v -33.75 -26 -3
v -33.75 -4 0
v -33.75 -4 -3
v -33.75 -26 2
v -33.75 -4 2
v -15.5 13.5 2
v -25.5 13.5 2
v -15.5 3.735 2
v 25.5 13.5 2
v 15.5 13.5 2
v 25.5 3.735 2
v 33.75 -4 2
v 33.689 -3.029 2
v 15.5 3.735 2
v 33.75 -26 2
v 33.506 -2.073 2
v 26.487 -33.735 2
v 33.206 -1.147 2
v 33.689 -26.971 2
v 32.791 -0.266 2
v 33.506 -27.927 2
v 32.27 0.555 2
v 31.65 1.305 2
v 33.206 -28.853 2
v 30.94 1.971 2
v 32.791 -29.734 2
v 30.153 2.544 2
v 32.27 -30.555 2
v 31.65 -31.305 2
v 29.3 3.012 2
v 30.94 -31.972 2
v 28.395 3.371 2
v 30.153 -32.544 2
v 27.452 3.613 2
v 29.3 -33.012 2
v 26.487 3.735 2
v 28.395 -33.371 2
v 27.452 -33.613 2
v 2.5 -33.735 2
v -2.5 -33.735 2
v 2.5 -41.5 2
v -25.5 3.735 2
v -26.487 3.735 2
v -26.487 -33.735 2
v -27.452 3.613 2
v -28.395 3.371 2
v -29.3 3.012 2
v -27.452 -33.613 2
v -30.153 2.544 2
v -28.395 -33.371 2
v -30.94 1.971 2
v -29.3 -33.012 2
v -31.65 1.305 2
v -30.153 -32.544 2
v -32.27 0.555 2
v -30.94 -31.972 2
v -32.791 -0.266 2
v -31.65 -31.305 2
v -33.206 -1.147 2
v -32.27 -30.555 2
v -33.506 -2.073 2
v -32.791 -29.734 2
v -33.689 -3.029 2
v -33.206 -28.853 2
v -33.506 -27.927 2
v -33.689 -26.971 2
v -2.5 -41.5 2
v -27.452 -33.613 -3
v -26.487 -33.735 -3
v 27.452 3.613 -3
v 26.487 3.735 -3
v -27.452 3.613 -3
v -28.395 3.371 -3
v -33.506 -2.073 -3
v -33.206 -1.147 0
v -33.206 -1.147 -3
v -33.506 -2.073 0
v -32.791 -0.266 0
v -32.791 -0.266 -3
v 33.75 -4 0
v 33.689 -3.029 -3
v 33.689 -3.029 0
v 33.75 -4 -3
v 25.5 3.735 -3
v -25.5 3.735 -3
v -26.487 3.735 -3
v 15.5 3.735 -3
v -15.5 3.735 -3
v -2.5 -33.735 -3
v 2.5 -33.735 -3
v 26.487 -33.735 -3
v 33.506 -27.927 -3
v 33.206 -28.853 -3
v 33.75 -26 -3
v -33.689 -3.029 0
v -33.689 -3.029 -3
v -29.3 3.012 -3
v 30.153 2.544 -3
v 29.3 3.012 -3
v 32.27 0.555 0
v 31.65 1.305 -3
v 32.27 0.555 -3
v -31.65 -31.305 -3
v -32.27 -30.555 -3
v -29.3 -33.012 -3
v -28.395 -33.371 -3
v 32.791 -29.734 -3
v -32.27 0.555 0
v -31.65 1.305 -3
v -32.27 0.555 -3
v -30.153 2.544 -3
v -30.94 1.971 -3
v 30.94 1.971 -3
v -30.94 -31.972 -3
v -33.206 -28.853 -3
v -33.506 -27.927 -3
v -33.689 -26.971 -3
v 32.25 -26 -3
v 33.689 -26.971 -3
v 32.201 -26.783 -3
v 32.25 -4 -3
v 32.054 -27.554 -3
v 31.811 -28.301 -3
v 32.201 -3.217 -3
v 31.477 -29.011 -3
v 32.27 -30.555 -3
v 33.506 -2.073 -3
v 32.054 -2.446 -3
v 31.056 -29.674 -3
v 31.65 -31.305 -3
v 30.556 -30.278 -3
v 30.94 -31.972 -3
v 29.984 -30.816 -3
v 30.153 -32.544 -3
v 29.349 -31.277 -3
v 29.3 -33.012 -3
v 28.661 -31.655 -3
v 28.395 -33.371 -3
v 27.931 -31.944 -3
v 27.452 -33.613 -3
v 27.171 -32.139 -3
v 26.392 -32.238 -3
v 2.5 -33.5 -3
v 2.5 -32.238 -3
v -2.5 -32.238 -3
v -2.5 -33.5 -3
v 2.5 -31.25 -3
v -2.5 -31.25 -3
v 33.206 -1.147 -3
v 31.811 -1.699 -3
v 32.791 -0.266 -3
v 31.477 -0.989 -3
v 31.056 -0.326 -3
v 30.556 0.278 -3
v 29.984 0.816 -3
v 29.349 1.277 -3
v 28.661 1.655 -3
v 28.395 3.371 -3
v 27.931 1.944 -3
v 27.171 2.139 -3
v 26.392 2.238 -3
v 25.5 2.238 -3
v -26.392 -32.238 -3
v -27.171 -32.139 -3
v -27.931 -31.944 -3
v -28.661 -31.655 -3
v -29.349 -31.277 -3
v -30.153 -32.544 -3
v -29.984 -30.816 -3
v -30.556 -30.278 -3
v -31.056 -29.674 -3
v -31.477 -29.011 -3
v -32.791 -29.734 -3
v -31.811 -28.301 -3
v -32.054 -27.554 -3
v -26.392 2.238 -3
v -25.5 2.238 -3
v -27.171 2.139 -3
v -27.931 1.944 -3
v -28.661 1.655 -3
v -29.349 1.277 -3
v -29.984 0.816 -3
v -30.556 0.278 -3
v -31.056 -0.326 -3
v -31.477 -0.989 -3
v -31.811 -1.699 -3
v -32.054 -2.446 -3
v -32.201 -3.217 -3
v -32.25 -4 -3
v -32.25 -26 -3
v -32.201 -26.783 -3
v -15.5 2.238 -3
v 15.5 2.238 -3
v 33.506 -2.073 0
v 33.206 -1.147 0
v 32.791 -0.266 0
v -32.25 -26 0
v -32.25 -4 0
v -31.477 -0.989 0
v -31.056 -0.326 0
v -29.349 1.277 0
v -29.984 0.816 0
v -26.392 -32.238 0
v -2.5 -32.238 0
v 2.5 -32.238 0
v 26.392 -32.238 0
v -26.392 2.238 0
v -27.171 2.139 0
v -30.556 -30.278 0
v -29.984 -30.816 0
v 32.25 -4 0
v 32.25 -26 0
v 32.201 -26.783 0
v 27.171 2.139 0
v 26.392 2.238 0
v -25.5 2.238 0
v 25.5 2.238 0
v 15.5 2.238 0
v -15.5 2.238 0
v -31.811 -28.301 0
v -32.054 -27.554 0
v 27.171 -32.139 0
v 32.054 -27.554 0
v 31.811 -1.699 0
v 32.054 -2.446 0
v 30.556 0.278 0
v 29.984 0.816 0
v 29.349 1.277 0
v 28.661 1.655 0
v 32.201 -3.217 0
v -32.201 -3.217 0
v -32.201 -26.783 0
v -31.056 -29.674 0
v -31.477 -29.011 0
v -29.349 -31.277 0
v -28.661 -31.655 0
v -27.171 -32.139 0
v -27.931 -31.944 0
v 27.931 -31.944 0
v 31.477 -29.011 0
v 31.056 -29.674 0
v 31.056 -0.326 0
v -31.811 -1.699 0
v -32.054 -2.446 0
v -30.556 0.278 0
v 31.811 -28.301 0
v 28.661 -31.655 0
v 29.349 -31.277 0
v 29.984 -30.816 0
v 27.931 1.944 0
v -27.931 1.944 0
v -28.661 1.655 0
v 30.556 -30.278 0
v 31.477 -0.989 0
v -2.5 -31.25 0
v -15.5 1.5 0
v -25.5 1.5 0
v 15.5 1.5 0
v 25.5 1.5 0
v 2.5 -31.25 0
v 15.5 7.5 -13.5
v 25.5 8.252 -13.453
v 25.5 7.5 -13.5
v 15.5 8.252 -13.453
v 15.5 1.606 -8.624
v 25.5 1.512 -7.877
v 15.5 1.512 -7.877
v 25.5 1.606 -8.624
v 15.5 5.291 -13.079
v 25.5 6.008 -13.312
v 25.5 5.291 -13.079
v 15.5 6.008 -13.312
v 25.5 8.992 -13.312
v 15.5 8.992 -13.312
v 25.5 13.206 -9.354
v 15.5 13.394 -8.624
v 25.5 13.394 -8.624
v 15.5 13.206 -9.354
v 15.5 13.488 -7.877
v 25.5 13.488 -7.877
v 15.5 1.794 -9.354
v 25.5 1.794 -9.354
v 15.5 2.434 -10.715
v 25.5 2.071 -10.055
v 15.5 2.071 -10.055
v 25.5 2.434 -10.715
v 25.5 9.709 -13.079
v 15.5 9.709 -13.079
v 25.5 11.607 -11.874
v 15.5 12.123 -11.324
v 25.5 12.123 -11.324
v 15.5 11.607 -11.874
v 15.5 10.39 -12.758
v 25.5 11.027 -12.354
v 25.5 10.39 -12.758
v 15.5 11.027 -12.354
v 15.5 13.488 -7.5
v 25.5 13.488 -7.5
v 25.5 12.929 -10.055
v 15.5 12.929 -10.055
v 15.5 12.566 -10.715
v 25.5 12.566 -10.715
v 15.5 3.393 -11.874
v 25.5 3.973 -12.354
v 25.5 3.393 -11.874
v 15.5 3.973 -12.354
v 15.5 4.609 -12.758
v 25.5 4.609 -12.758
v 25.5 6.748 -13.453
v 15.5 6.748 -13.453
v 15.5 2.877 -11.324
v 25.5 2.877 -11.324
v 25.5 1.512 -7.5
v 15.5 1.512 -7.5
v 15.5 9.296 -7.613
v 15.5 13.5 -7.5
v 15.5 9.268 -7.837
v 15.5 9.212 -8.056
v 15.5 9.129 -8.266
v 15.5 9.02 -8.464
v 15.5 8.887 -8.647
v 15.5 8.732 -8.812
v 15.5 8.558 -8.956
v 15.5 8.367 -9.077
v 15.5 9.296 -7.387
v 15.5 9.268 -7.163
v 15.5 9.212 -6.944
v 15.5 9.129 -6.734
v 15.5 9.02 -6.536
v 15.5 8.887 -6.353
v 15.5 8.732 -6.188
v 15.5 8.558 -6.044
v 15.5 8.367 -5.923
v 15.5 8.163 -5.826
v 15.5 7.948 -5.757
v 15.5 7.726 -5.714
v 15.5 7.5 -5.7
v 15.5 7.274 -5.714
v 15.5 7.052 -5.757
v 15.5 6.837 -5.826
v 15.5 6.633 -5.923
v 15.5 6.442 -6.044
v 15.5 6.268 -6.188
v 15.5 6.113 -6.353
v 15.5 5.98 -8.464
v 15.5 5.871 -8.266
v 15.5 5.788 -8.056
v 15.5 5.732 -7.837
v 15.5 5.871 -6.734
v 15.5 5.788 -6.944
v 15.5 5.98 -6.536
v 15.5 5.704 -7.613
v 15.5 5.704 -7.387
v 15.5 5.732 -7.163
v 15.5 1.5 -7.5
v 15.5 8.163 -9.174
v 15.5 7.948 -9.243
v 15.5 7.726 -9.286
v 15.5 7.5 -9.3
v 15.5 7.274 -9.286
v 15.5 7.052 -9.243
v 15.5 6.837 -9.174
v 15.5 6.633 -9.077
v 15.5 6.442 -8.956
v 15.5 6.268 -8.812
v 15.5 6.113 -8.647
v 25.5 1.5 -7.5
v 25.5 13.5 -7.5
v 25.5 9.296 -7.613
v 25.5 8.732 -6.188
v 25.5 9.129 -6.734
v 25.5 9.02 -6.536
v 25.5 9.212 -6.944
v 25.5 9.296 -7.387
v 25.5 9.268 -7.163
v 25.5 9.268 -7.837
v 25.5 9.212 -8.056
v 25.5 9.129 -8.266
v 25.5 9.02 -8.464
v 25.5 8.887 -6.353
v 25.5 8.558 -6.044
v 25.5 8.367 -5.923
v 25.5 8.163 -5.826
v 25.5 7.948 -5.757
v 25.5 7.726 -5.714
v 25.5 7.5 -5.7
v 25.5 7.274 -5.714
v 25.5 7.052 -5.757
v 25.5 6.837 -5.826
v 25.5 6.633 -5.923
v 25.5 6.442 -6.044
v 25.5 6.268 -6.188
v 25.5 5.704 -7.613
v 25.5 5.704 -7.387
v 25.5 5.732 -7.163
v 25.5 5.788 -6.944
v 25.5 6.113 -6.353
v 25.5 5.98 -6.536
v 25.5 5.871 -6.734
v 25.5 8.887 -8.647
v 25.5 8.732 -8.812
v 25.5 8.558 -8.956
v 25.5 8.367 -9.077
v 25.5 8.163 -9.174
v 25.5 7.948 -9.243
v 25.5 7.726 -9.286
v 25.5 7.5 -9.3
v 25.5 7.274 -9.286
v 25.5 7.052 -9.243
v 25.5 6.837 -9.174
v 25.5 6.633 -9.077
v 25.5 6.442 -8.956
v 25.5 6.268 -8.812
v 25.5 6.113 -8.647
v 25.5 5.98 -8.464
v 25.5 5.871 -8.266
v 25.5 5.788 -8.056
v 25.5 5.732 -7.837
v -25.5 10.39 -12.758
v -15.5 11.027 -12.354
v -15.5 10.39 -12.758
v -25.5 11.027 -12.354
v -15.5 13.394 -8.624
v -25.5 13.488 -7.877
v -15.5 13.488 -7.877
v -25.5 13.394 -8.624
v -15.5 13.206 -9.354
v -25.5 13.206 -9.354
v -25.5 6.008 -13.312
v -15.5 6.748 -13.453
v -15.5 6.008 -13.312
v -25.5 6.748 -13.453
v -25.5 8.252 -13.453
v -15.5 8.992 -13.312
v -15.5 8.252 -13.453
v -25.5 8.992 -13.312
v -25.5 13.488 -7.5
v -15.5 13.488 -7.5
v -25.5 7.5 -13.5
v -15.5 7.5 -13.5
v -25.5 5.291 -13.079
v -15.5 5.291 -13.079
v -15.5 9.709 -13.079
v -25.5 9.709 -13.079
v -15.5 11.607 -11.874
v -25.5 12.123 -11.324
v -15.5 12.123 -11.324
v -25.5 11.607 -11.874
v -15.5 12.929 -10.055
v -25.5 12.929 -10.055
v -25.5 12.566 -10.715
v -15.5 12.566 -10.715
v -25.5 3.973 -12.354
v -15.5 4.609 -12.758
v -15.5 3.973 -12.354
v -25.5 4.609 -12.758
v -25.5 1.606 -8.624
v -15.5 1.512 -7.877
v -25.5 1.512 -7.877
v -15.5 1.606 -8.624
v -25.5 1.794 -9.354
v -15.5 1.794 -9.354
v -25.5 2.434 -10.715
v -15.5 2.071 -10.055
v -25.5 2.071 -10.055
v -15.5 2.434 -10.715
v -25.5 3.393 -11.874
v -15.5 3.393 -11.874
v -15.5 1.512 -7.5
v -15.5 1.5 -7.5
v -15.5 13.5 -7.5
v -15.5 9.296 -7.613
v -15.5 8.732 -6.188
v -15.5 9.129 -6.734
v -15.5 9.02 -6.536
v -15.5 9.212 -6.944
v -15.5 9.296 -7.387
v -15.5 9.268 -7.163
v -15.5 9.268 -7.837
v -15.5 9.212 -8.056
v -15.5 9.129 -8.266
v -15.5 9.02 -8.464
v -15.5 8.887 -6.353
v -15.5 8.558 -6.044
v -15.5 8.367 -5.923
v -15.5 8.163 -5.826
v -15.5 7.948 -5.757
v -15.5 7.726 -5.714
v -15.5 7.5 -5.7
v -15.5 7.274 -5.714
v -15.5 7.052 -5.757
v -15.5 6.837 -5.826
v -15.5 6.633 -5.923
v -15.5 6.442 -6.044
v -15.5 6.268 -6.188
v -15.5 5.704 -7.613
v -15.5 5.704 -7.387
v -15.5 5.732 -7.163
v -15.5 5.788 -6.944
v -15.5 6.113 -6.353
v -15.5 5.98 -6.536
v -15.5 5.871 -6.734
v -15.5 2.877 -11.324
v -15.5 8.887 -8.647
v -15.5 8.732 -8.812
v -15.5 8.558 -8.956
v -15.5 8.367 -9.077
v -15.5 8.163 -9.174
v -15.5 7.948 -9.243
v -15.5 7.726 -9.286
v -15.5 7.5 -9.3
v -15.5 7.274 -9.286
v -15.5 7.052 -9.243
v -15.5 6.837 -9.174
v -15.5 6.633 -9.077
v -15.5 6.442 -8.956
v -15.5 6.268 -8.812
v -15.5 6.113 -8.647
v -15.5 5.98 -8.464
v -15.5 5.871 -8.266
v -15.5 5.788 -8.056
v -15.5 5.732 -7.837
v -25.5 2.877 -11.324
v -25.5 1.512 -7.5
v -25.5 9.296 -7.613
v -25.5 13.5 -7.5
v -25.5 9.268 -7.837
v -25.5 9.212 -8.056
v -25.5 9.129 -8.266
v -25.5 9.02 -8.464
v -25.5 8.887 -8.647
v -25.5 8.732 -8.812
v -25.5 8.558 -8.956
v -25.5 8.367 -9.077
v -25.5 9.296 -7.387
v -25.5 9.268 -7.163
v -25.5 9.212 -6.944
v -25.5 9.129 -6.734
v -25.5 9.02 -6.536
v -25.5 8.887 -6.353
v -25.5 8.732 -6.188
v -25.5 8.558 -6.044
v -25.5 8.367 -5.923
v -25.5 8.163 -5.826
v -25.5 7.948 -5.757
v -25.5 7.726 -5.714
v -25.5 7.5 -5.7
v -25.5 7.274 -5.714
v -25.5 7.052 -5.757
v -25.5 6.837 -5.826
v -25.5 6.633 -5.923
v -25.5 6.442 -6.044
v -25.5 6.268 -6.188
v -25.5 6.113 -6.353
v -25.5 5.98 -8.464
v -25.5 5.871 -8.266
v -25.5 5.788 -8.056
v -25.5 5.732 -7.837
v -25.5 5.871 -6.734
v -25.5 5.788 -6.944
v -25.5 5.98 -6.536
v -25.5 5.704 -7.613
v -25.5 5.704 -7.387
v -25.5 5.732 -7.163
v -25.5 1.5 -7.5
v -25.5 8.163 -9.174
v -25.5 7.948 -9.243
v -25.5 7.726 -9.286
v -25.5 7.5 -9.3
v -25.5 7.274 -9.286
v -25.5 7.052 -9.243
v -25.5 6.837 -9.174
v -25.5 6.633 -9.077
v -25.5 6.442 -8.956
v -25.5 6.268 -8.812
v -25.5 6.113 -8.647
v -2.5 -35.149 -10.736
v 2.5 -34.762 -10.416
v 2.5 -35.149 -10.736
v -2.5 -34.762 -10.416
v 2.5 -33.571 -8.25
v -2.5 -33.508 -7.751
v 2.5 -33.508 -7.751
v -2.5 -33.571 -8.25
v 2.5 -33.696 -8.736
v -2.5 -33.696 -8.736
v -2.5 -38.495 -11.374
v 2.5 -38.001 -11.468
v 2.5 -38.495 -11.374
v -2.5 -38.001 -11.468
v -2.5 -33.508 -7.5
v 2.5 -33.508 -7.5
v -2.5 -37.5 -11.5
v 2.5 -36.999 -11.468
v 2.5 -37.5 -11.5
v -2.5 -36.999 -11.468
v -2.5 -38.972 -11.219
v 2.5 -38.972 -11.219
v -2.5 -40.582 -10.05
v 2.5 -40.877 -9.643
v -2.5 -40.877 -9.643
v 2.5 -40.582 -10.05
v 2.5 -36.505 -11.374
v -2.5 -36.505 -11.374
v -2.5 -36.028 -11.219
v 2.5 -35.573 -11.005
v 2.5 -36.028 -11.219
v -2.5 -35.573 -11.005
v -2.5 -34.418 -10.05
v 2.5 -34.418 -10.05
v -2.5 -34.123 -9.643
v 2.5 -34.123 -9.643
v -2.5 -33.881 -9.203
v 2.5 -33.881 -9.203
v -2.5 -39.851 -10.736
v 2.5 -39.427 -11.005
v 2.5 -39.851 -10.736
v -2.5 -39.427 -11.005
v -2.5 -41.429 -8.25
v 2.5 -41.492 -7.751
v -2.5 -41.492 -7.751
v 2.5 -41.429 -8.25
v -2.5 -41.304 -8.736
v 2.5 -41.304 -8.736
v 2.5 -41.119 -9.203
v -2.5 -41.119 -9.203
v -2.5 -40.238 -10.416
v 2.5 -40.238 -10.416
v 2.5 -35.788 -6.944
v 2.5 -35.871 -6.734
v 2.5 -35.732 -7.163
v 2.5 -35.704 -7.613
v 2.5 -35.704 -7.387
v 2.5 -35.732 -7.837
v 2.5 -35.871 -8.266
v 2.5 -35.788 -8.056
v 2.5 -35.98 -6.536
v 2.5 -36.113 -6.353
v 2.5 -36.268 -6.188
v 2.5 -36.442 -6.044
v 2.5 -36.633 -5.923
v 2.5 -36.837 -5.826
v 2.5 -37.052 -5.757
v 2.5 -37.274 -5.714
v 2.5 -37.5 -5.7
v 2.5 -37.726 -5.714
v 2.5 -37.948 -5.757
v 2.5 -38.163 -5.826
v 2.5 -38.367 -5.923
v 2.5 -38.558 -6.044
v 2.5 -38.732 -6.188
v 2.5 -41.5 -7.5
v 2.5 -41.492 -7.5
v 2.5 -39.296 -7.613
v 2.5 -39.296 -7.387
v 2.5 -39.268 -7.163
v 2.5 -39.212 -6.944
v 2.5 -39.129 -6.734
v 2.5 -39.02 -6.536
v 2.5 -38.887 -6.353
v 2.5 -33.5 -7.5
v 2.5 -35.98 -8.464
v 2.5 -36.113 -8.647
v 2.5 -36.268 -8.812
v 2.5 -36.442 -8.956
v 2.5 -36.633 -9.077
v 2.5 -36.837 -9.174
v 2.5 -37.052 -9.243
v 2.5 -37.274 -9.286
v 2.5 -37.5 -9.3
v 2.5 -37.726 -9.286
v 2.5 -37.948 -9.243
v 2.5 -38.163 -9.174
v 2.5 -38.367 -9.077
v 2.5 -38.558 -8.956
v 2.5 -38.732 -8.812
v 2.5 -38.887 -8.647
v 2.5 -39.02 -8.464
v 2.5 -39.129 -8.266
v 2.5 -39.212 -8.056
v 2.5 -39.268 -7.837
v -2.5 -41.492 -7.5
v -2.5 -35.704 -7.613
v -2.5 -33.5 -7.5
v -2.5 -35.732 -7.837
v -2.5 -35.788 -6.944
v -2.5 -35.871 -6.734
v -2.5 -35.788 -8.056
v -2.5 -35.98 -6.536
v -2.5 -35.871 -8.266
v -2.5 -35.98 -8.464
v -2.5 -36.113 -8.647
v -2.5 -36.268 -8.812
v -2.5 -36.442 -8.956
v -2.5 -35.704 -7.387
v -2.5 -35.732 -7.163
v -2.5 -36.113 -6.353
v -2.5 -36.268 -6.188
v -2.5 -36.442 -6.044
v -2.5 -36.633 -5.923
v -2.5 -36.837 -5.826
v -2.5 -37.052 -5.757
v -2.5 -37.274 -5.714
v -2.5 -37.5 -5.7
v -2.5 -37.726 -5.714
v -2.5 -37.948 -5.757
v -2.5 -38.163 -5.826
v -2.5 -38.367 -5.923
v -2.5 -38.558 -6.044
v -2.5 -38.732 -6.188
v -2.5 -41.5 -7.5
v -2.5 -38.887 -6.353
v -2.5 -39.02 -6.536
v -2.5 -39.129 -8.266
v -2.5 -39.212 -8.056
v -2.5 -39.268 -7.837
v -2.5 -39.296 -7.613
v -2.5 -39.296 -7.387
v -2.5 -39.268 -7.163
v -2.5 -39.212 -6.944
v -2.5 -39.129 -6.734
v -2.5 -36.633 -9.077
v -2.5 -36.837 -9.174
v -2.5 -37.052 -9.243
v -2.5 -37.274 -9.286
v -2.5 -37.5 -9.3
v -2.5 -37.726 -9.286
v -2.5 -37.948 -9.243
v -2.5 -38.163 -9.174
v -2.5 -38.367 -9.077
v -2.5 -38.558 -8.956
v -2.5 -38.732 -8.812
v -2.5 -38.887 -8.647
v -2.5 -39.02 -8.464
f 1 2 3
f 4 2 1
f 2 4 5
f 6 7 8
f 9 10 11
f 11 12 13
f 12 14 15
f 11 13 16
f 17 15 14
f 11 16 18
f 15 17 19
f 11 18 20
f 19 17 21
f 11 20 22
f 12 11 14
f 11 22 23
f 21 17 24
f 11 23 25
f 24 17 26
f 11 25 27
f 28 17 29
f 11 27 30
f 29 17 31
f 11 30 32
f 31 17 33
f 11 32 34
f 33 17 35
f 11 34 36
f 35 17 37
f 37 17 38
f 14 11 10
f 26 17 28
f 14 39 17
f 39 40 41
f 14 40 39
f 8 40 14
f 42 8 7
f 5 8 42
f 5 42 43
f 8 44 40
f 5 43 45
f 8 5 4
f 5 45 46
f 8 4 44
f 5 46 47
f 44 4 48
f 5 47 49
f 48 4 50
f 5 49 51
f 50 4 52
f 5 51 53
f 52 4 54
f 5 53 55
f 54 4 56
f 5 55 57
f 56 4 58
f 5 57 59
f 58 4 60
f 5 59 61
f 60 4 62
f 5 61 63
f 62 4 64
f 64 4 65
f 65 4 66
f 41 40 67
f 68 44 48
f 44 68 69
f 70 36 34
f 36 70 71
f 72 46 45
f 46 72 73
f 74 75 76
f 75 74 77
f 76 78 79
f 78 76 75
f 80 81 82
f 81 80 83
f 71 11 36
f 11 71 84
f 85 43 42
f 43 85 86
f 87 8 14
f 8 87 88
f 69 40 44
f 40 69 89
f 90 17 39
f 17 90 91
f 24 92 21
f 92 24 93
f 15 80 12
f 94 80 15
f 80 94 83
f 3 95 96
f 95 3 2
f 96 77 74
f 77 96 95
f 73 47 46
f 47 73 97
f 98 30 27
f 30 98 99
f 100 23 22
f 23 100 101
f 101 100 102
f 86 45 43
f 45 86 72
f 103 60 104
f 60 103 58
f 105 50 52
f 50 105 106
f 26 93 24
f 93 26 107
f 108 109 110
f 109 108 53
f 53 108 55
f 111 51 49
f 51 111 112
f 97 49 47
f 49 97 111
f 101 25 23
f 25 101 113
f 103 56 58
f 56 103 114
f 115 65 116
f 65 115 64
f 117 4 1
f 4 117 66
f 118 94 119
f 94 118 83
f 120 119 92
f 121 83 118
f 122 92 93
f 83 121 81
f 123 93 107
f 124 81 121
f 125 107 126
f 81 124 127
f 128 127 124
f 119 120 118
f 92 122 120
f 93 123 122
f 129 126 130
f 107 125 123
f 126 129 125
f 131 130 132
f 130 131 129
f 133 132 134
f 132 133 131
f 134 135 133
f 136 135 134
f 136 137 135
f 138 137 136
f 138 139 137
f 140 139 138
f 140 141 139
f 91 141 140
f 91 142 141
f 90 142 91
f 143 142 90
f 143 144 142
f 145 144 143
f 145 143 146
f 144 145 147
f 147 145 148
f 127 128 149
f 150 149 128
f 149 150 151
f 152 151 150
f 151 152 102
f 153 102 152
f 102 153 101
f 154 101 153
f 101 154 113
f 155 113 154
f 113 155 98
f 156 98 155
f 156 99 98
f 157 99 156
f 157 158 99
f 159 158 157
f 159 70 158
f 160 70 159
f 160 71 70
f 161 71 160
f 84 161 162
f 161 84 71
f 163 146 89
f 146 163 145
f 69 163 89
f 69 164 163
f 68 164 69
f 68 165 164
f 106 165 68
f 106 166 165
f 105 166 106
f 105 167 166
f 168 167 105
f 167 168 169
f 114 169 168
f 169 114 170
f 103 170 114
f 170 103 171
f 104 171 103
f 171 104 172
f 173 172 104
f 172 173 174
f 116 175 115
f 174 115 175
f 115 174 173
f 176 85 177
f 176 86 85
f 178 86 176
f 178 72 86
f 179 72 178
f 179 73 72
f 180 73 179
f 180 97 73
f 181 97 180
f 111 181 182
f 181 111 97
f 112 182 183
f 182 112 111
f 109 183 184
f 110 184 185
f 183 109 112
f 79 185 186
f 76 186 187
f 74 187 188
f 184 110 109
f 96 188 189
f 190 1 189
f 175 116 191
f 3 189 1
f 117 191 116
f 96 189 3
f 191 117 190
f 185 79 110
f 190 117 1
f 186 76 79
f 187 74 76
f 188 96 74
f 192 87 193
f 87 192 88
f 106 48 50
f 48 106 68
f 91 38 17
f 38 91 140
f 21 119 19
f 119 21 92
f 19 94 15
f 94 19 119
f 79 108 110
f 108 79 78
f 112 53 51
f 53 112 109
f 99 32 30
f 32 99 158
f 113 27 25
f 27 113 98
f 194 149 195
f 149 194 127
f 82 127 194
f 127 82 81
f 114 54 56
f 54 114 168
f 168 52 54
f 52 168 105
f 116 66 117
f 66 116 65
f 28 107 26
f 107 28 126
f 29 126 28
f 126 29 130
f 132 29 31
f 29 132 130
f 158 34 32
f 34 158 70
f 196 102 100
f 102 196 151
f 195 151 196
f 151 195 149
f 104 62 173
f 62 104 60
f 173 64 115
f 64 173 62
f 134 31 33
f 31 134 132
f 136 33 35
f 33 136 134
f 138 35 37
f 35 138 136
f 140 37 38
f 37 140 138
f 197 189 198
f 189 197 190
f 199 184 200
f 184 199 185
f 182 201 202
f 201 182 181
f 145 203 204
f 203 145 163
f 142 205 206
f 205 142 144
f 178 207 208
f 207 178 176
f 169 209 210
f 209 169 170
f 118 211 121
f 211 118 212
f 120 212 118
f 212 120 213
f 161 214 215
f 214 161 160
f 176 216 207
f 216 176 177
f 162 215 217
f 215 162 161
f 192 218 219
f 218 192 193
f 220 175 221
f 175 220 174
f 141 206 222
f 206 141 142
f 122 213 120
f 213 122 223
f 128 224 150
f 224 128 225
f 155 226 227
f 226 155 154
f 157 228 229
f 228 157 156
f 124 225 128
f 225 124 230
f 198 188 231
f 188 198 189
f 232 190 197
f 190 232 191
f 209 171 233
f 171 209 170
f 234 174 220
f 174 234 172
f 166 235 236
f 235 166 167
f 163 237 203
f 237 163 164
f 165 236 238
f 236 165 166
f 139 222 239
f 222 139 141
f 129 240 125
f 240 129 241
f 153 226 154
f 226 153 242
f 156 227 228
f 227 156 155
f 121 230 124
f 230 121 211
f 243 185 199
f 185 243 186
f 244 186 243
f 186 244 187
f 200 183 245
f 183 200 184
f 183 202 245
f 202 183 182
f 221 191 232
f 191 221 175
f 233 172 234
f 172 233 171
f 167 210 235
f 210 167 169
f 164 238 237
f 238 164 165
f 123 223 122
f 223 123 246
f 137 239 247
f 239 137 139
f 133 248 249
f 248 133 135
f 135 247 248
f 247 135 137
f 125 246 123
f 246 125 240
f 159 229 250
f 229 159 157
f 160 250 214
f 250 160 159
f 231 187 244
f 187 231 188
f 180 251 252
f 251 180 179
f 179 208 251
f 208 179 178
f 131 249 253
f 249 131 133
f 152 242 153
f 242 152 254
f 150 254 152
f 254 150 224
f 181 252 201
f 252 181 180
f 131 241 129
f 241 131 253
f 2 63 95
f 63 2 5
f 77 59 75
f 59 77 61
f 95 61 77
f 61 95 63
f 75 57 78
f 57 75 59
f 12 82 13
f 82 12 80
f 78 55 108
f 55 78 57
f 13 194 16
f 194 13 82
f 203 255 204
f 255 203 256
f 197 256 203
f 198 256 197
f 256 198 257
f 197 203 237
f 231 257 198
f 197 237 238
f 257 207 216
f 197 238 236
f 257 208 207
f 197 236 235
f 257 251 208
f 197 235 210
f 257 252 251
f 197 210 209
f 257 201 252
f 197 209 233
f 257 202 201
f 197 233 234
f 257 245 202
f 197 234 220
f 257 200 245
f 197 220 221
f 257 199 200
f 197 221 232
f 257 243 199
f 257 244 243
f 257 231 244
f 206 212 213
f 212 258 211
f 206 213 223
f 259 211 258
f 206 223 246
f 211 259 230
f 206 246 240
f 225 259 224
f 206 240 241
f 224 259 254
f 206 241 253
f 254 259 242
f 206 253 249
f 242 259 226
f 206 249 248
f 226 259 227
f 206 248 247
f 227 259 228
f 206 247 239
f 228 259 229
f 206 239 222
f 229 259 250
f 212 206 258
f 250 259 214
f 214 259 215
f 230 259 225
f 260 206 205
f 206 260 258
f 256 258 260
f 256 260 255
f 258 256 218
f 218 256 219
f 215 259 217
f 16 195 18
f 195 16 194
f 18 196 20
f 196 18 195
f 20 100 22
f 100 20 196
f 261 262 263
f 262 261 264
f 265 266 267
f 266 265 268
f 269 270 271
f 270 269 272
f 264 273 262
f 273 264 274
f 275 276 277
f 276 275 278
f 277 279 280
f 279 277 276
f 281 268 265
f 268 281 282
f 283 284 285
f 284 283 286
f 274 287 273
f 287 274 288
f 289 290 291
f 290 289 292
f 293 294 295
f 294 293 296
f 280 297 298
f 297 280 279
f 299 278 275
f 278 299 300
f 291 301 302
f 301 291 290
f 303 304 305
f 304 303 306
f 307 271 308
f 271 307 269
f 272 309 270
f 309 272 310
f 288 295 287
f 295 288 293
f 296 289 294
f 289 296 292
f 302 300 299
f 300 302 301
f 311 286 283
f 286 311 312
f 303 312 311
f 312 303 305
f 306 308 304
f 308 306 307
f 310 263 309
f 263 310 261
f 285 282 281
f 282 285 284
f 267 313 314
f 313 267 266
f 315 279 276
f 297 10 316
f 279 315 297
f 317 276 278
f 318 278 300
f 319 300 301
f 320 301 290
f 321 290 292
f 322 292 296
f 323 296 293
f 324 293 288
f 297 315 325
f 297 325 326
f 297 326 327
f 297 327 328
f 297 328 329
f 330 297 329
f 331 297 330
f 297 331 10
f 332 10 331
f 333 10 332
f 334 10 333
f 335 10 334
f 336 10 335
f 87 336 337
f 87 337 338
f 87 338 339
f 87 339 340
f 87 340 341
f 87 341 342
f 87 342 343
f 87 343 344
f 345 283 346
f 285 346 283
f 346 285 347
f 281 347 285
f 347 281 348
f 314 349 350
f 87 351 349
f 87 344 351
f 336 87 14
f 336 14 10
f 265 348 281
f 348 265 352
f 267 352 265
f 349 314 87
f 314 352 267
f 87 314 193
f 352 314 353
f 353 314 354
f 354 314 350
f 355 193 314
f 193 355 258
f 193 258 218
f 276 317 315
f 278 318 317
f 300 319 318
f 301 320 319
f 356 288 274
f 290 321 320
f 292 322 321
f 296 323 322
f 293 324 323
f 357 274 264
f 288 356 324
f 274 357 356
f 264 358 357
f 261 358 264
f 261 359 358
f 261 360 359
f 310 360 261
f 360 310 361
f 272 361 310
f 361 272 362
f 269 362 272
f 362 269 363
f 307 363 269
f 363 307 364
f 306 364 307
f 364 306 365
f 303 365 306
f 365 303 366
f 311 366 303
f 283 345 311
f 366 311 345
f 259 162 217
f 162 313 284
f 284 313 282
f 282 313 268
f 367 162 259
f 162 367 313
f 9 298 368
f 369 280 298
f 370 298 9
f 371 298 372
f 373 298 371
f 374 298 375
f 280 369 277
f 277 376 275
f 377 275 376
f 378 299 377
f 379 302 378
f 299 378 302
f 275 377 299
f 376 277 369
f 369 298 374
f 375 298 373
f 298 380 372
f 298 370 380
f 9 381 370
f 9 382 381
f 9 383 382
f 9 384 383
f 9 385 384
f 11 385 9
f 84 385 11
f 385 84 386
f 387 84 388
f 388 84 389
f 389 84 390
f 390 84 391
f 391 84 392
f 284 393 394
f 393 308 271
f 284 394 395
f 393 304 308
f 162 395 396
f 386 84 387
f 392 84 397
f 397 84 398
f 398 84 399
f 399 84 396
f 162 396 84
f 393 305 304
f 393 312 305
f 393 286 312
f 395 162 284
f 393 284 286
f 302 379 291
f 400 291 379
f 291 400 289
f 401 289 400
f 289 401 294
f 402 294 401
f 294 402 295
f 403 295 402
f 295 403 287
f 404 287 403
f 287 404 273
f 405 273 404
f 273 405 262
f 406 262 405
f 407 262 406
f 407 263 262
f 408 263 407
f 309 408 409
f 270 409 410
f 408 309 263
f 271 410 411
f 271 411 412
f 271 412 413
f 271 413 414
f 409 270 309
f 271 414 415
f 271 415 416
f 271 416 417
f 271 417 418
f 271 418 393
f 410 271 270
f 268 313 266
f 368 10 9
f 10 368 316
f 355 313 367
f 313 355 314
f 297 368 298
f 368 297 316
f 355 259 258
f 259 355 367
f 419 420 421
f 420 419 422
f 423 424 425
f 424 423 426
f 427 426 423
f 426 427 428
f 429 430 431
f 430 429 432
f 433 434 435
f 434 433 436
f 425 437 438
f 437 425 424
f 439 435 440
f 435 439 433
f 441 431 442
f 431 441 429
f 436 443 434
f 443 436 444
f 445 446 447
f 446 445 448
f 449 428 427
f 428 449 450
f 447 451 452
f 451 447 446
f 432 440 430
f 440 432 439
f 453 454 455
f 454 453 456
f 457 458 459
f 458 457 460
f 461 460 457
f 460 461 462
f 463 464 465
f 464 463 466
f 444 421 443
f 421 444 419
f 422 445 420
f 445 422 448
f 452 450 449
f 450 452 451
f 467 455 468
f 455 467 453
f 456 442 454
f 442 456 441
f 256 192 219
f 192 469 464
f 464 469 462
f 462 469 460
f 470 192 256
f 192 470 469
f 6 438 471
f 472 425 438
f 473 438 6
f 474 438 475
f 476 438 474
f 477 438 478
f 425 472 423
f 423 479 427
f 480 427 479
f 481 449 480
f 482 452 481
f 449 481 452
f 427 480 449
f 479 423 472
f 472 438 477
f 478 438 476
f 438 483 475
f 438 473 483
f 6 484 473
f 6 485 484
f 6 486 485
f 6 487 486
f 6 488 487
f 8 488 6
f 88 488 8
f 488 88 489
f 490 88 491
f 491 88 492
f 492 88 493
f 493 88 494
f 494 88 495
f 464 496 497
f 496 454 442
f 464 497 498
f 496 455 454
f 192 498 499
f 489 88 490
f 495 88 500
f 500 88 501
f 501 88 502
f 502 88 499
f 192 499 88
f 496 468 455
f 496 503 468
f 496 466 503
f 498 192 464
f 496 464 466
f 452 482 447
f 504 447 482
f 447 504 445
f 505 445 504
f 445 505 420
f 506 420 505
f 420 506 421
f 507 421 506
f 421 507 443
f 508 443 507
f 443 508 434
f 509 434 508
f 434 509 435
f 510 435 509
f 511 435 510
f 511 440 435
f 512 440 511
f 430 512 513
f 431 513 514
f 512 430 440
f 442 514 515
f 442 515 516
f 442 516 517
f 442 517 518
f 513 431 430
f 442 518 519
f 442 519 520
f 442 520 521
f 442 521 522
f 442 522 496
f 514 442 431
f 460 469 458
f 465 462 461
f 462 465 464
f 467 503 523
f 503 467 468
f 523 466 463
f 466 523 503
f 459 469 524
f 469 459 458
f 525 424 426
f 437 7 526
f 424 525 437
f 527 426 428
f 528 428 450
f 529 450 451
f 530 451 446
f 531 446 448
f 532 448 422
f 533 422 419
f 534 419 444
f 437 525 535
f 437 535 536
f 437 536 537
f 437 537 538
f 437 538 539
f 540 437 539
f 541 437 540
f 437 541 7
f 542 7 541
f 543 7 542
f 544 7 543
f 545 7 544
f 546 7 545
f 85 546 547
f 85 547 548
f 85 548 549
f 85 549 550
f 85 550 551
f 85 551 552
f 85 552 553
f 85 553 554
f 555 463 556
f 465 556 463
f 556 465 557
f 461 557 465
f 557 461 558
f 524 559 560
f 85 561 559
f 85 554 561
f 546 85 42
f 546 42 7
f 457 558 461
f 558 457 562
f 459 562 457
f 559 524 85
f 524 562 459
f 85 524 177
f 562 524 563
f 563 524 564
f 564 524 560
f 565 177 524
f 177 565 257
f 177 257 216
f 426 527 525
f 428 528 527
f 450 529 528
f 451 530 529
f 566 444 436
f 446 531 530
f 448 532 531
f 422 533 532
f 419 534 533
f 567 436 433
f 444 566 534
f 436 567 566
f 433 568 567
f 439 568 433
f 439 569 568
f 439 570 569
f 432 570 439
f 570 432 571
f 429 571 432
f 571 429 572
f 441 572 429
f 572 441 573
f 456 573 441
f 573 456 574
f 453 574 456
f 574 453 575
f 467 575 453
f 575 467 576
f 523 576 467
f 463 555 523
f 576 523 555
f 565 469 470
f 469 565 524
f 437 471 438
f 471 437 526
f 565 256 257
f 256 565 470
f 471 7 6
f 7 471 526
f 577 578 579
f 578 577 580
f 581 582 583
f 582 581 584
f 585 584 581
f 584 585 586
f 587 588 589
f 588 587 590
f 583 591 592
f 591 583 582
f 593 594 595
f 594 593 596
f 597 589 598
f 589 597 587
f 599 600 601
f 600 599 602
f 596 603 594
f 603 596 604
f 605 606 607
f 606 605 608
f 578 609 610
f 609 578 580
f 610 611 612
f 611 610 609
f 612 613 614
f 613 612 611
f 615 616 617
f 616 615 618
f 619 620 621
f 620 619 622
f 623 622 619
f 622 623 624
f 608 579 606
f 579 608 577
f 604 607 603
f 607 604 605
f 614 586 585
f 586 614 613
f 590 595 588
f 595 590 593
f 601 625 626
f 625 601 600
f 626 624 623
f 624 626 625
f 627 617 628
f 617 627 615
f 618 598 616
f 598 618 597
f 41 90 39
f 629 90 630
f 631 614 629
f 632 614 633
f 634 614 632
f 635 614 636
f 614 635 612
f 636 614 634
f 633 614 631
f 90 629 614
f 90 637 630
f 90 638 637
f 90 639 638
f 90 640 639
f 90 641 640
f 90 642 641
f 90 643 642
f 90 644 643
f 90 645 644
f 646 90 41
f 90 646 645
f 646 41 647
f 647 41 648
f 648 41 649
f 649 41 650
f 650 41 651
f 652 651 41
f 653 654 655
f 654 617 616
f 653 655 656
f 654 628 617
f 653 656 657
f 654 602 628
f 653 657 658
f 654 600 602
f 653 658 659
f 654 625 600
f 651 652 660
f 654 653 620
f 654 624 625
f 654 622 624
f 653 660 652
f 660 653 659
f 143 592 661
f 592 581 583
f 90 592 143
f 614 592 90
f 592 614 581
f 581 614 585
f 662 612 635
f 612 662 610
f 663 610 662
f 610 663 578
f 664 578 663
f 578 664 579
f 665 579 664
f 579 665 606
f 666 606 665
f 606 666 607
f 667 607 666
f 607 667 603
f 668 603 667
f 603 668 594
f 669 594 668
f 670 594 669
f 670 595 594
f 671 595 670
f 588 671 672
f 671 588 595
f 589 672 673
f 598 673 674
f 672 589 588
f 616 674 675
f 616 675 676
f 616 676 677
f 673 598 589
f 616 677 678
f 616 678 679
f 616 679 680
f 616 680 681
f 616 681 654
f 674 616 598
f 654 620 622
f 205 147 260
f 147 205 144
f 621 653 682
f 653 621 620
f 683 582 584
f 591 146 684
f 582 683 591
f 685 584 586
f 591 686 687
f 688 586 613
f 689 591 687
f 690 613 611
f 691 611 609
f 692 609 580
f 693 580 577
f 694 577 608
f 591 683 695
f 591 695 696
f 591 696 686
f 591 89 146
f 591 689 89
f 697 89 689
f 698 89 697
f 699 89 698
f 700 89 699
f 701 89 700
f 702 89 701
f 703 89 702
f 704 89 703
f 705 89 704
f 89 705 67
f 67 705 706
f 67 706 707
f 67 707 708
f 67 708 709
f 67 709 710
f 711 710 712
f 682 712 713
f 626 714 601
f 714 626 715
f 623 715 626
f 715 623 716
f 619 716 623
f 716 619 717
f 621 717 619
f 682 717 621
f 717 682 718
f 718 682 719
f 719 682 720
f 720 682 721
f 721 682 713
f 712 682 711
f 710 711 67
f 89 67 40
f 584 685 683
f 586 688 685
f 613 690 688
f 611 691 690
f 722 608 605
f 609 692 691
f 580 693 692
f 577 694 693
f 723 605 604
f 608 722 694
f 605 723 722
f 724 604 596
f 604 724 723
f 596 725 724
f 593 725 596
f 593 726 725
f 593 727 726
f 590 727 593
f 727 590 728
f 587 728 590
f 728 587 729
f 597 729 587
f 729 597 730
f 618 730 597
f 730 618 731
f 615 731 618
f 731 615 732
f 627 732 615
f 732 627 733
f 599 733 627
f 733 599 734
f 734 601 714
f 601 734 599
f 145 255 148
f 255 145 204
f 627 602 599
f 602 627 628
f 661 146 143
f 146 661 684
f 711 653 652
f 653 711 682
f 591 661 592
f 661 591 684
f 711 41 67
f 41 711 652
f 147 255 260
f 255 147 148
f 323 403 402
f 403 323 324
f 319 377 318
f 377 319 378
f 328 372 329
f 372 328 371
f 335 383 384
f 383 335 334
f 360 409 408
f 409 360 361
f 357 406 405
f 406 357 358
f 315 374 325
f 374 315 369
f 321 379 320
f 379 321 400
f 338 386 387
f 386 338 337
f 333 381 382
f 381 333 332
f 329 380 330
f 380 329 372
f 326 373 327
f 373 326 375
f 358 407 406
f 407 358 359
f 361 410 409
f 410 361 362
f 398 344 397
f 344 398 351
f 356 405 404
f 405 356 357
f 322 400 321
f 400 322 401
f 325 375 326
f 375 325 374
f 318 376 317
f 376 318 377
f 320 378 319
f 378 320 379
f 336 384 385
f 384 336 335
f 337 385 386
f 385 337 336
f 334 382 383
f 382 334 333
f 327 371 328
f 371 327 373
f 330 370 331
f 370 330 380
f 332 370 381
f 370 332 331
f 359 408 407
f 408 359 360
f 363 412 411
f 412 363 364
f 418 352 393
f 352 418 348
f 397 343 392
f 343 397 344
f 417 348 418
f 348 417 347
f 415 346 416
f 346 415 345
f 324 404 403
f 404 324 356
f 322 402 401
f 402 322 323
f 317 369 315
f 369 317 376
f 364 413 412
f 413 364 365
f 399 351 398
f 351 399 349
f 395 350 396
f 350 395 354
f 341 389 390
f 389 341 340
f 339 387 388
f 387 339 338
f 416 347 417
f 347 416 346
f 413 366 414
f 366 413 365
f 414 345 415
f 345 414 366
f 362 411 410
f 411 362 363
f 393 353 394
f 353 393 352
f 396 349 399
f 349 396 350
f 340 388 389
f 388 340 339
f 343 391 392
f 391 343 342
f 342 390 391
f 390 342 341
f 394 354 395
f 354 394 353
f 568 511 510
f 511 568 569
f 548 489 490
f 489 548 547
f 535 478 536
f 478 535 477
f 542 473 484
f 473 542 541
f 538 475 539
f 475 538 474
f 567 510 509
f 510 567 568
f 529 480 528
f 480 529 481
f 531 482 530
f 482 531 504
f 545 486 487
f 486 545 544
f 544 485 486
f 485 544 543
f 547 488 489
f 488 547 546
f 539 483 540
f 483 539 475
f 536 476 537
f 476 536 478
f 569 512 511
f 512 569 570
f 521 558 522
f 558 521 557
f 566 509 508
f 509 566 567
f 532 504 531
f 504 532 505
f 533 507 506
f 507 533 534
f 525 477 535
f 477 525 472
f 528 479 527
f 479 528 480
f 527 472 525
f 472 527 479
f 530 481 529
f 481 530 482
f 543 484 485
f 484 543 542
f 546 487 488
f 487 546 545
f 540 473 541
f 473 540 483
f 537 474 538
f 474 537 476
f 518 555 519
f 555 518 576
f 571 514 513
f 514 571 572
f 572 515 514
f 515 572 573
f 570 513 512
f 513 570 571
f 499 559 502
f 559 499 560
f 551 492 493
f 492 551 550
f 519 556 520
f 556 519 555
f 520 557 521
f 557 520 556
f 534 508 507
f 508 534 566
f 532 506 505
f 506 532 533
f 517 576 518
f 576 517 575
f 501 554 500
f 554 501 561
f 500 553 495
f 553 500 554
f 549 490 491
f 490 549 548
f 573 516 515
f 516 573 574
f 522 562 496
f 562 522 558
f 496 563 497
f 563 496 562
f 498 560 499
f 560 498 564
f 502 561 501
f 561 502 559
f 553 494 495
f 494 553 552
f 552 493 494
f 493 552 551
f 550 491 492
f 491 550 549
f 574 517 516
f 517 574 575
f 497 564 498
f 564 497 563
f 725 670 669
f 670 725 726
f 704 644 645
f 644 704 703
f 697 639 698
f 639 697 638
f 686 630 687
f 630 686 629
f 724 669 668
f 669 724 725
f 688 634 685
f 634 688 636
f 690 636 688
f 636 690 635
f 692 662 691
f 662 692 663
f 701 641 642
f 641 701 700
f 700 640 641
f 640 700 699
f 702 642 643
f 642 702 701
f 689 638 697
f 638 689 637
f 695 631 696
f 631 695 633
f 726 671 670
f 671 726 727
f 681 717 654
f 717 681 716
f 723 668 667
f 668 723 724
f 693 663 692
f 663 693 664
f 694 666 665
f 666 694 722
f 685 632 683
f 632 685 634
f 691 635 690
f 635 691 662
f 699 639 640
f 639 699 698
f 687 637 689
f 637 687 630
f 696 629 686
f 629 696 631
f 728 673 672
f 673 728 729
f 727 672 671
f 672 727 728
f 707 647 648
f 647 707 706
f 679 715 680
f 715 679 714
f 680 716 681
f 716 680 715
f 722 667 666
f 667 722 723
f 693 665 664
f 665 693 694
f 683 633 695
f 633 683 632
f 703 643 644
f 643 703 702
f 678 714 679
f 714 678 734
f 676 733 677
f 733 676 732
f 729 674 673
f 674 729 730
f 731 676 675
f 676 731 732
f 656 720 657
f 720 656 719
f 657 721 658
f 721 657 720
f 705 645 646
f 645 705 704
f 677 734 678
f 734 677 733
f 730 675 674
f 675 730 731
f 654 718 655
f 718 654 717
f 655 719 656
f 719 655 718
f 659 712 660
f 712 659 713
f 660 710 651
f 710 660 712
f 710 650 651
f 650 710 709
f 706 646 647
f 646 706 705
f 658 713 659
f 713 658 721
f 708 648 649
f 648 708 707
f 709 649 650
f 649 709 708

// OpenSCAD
$fn = 50;


difference() {
	union() {
		translate(v = [0, -15.0000000000, -3]) {
			rotate(a = [0, 0, 0]) {
				difference() {
					union() {
						hull() {
							translate(v = [-26.0000000000, 11.0000000000, 0]) {
								cylinder(h = 5, r = 7.7500000000);
							}
							translate(v = [26.0000000000, 11.0000000000, 0]) {
								cylinder(h = 5, r = 7.7500000000);
							}
							translate(v = [-26.0000000000, -11.0000000000, 0]) {
								cylinder(h = 5, r = 7.7500000000);
							}
							translate(v = [26.0000000000, -11.0000000000, 0]) {
								cylinder(h = 5, r = 7.7500000000);
							}
						}
					}
					union() {
						hull() {
							translate(v = [-26.0000000000, 11.0000000000, 0]) {
								cylinder(h = 5, r = 6.2500000000);
							}
							translate(v = [26.0000000000, 11.0000000000, 0]) {
								cylinder(h = 5, r = 6.2500000000);
							}
							translate(v = [-26.0000000000, -11.0000000000, 0]) {
								cylinder(h = 5, r = 6.2500000000);
							}
							translate(v = [26.0000000000, -11.0000000000, 0]) {
								cylinder(h = 5, r = 6.2500000000);
							}
						}
					}
				}
			}
		}
		translate(v = [0, -15.0000000000, 0]) {
			hull() {
				translate(v = [-26.0000000000, 11.0000000000, 0]) {
					cylinder(h = 2, r = 7.7500000000);
				}
				translate(v = [26.0000000000, 11.0000000000, 0]) {
					cylinder(h = 2, r = 7.7500000000);
				}
				translate(v = [-26.0000000000, -11.0000000000, 0]) {
					cylinder(h = 2, r = 7.7500000000);
				}
				translate(v = [26.0000000000, -11.0000000000, 0]) {
					cylinder(h = 2, r = 7.7500000000);
				}
			}
		}
		translate(v = [15.5000000000, 7.5000000000, -7.5000000000]) {
			rotate(a = [0, 90, 0]) {
				cylinder(h = 10, r = 6.0000000000);
			}
		}
		translate(v = [15.5000000000, 1.5000000000, -7.5000000000]) {
			cube(size = [10, 12, 7.5000000000]);
		}
		translate(v = [15.5000000000, -15.0000000000, 0.0000000000]) {
			cube(size = [10, 28.5000000000, 2]);
		}
		translate(v = [-25.5000000000, 7.5000000000, -7.5000000000]) {
			rotate(a = [0, 90, 0]) {
				cylinder(h = 10, r = 6.0000000000);
			}
		}
		translate(v = [-25.5000000000, 1.5000000000, -7.5000000000]) {
			cube(size = [10, 12, 7.5000000000]);
		}
		translate(v = [-25.5000000000, -15.0000000000, 0.0000000000]) {
			cube(size = [10, 28.5000000000, 2]);
		}
		translate(v = [-2.5000000000, -37.5000000000, -7.5000000000]) {
			rotate(a = [0, 90, 0]) {
				cylinder(h = 5, r = 4.0000000000);
			}
		}
		translate(v = [-2.5000000000, -41.5000000000, -7.5000000000]) {
			cube(size = [5, 8, 7.5000000000]);
		}
		translate(v = [-2.5000000000, -41.5000000000, -3.0000000000]) {
			cube(size = [5, 10.2500000000, 5]);
		}
	}
	union() {
		translate(v = [15.5000000000, 7.5000000000, -7.5000000000]) {
			rotate(a = [0, 90, 0]) {
				cylinder(h = 10, r = 1.8000000000);
			}
		}
		translate(v = [-25.5000000000, 7.5000000000, -7.5000000000]) {
			rotate(a = [0, 90, 0]) {
				cylinder(h = 10, r = 1.8000000000);
			}
		}
		translate(v = [-5.0000000000, -37.5000000000, -7.5000000000]) {
			rotate(a = [0, 90, 0]) {
				cylinder(h = 10, r = 1.8000000000);
			}
		}
	}
}
